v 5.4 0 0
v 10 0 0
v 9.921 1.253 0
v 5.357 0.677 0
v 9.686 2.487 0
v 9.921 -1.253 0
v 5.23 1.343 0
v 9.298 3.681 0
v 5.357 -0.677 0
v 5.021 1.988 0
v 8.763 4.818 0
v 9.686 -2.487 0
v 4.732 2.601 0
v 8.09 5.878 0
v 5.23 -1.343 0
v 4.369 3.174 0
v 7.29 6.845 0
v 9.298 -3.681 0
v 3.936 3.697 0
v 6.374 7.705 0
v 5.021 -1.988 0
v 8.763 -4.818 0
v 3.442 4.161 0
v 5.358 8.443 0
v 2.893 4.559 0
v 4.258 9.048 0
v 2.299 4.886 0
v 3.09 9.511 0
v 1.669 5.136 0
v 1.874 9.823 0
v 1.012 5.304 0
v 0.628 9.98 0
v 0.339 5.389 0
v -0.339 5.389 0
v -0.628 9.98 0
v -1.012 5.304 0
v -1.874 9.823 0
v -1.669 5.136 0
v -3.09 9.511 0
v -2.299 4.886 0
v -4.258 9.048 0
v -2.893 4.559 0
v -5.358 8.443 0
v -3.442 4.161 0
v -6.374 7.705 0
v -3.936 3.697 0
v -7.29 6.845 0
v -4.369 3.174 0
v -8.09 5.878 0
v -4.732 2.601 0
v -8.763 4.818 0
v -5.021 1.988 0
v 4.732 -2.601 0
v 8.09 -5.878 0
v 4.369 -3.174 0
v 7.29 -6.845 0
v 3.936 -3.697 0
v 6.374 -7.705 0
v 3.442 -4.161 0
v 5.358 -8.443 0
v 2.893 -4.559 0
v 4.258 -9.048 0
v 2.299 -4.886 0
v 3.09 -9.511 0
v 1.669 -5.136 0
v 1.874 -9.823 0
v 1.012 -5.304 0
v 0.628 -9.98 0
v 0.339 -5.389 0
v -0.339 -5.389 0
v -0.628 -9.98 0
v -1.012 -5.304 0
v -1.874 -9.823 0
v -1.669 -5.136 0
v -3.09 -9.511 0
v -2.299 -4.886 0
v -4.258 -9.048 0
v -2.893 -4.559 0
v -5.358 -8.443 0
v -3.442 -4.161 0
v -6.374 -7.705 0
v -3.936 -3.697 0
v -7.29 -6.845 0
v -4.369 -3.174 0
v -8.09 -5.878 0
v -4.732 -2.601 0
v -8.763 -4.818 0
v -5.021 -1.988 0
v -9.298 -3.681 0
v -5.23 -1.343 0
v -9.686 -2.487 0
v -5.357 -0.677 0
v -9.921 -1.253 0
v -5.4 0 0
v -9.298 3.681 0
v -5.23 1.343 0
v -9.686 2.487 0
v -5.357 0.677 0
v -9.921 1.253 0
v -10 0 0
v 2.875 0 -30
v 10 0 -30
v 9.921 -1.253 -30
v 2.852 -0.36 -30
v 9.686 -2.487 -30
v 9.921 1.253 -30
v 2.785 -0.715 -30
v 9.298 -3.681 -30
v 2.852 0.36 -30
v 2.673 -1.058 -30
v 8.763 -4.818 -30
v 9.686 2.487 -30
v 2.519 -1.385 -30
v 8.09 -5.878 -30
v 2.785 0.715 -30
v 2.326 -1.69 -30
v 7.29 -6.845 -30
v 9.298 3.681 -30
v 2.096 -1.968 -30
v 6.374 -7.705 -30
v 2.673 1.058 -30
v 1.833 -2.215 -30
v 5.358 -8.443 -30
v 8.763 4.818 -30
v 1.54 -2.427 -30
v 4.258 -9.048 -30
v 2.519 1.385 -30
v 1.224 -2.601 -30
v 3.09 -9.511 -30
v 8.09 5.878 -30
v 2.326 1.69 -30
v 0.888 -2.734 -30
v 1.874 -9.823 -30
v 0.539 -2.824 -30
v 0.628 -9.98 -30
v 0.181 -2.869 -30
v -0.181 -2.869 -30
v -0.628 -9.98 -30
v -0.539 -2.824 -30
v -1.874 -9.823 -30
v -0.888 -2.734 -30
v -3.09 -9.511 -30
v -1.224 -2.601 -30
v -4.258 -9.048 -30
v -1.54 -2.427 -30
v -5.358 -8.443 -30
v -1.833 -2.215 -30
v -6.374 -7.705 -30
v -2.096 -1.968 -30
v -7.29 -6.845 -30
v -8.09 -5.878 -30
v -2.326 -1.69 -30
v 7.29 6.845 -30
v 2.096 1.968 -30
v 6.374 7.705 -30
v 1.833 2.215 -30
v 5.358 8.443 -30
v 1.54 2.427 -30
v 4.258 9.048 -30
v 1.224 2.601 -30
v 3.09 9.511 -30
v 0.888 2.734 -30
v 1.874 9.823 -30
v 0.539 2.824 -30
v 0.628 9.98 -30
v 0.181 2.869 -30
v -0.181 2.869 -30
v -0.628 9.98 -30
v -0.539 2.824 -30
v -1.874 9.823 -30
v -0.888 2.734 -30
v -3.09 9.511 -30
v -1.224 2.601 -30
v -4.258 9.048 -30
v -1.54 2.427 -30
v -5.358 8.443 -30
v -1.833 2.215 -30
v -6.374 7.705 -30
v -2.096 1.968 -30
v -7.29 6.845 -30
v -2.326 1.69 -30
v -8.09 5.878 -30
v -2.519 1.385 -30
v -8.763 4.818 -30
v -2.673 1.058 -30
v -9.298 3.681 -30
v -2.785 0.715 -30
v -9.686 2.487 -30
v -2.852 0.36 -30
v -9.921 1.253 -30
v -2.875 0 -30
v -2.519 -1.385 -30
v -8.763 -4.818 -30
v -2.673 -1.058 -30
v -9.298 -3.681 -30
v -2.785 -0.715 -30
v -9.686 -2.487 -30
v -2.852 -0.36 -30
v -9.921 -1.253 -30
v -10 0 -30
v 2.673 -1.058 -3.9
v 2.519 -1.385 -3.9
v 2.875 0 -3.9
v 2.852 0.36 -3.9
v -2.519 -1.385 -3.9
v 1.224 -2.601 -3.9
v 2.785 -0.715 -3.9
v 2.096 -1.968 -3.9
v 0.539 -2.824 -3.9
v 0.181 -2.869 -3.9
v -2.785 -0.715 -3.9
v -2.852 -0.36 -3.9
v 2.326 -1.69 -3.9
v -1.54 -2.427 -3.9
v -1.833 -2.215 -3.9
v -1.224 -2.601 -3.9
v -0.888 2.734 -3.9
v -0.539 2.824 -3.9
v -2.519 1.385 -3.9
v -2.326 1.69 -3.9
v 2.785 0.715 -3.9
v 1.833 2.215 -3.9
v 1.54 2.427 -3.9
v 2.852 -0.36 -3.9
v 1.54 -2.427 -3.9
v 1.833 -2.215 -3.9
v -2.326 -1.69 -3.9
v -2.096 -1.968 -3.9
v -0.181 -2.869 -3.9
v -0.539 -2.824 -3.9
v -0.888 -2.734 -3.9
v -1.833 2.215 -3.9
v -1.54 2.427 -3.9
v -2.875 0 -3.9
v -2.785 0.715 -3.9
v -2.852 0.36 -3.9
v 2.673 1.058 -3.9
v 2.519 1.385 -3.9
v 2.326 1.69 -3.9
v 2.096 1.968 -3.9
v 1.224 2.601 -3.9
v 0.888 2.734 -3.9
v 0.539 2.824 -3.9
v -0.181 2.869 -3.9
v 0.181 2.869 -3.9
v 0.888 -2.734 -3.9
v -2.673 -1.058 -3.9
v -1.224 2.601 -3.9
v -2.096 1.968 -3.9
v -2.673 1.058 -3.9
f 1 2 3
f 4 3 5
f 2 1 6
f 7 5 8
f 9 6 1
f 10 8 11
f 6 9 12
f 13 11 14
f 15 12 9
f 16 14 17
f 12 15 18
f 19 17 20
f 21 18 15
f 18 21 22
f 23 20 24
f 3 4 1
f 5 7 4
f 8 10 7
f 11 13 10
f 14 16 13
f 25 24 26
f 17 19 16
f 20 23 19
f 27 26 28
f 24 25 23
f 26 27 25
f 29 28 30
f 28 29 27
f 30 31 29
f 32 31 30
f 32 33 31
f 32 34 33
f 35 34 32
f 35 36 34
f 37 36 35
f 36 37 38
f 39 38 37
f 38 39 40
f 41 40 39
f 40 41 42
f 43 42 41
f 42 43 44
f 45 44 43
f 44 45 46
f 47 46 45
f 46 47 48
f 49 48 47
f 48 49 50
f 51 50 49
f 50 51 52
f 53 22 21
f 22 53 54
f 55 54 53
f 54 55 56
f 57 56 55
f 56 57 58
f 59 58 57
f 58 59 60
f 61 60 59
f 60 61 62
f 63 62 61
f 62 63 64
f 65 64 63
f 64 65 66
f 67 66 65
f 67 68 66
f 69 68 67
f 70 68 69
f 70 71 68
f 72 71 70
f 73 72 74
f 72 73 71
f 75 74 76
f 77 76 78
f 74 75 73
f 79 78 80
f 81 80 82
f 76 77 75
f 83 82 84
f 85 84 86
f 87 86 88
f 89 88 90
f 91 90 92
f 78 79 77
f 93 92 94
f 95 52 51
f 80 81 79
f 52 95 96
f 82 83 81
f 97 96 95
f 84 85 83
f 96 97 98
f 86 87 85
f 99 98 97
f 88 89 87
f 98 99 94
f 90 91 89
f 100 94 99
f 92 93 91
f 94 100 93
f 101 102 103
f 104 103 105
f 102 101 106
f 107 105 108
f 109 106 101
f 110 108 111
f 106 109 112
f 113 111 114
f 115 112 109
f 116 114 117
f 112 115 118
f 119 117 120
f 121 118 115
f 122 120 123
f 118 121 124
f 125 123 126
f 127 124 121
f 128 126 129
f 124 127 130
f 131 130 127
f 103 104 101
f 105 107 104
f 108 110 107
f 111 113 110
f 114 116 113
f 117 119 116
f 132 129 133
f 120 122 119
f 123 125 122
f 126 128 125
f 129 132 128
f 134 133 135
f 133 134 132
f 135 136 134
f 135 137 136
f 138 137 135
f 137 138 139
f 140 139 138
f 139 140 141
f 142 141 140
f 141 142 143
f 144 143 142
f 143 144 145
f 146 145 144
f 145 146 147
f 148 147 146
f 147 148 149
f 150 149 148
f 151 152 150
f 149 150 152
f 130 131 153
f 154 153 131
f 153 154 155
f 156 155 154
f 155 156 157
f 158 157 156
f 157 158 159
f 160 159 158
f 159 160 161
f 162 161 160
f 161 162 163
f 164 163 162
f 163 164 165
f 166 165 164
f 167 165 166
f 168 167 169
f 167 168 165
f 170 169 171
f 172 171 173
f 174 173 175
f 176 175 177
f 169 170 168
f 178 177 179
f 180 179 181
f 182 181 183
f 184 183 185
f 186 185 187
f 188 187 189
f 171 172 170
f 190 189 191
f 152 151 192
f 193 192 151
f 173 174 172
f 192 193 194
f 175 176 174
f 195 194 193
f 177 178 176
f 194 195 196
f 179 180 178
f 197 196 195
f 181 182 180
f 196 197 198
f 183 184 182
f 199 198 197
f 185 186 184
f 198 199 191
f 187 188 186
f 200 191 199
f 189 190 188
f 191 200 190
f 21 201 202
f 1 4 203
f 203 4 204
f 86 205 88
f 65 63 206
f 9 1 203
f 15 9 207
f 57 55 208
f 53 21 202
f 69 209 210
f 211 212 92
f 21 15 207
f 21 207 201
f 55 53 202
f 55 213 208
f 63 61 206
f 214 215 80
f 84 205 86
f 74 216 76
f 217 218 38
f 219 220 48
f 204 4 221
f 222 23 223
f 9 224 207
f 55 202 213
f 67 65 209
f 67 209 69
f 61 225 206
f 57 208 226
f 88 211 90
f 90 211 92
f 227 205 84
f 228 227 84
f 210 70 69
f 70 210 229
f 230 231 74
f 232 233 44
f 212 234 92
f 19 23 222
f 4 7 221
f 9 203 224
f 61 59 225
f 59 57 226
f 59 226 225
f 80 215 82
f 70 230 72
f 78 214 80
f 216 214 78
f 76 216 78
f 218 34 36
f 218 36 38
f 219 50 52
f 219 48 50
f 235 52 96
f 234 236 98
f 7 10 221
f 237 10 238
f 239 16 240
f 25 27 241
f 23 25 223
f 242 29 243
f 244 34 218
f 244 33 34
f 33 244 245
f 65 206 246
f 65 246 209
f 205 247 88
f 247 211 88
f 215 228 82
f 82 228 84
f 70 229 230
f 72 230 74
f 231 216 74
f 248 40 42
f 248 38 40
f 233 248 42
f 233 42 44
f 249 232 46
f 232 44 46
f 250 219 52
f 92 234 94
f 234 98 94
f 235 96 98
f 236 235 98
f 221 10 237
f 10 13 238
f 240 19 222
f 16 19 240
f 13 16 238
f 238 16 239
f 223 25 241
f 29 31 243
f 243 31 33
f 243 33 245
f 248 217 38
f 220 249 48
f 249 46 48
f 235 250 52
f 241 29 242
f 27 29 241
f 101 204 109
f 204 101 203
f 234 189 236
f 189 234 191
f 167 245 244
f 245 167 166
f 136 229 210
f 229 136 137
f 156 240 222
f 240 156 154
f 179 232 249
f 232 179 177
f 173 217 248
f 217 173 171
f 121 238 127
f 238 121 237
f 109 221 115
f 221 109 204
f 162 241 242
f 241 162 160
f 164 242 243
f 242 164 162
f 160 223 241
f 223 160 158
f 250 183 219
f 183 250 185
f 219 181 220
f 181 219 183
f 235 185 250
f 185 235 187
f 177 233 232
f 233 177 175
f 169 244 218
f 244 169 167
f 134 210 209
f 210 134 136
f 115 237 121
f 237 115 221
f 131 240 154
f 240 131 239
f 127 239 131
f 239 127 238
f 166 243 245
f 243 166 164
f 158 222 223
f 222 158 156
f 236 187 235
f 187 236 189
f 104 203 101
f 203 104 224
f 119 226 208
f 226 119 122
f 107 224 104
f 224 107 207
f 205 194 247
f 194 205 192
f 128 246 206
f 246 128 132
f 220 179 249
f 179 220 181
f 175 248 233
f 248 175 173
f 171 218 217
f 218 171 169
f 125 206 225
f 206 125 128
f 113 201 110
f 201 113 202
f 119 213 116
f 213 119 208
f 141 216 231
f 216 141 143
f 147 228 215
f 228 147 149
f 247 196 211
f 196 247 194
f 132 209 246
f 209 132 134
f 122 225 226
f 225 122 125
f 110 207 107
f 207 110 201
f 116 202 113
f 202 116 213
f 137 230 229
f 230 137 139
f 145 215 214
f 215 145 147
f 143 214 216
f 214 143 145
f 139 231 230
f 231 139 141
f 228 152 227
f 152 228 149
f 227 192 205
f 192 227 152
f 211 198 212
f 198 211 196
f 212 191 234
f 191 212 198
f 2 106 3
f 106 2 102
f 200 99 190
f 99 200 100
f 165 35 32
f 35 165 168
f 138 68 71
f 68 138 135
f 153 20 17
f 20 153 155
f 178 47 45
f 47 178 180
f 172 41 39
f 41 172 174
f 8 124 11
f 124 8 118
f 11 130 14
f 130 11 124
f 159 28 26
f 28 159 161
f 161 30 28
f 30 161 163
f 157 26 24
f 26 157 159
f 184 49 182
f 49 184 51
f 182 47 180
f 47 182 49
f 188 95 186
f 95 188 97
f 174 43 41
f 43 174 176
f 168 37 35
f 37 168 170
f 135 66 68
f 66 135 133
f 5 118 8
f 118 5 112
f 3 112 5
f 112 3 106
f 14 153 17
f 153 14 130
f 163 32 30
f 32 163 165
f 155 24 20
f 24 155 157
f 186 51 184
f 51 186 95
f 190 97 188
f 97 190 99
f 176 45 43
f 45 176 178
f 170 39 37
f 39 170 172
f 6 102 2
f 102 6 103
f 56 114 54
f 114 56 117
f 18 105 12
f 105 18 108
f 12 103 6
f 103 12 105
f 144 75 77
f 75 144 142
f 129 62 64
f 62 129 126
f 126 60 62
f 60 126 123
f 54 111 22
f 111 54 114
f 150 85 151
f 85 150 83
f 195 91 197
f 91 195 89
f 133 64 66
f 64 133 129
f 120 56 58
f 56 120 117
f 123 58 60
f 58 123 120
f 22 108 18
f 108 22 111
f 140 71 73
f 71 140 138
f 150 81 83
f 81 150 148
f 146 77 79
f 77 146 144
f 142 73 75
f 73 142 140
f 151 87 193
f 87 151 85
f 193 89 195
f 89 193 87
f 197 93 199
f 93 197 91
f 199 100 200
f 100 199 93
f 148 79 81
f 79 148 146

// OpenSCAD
$fn = 50;


difference() {
	union() {
		translate(v = [0, 0, -30.0000000000]) {
			cylinder(h = 30, r = 10.0000000000);
		}
	}
	union() {
		translate(v = [0, 0, 0]) {
			rotate(a = [0, 0, 0]) {
				difference() {
					union() {
						#translate(v = [0, 0, -30.0000000000]) {
							cylinder(h = 30, r = 2.6000000000);
						}
						#translate(v = [0, 0, -3.9000000000]) {
							cylinder(h = 3.9000000000, r = 10.0000000000, r1 = 2.8750000000, r2 = 5.4000000000);
						}
						#translate(v = [0, 0, -30.0000000000]) {
							cylinder(h = 30, r = 2.8750000000);
						}
						#translate(v = [0, 0, -30.0000000000]) {
							cylinder(h = 30, r = 2.6000000000);
						}
					}
					union();
				}
			}
		}
	}
}
